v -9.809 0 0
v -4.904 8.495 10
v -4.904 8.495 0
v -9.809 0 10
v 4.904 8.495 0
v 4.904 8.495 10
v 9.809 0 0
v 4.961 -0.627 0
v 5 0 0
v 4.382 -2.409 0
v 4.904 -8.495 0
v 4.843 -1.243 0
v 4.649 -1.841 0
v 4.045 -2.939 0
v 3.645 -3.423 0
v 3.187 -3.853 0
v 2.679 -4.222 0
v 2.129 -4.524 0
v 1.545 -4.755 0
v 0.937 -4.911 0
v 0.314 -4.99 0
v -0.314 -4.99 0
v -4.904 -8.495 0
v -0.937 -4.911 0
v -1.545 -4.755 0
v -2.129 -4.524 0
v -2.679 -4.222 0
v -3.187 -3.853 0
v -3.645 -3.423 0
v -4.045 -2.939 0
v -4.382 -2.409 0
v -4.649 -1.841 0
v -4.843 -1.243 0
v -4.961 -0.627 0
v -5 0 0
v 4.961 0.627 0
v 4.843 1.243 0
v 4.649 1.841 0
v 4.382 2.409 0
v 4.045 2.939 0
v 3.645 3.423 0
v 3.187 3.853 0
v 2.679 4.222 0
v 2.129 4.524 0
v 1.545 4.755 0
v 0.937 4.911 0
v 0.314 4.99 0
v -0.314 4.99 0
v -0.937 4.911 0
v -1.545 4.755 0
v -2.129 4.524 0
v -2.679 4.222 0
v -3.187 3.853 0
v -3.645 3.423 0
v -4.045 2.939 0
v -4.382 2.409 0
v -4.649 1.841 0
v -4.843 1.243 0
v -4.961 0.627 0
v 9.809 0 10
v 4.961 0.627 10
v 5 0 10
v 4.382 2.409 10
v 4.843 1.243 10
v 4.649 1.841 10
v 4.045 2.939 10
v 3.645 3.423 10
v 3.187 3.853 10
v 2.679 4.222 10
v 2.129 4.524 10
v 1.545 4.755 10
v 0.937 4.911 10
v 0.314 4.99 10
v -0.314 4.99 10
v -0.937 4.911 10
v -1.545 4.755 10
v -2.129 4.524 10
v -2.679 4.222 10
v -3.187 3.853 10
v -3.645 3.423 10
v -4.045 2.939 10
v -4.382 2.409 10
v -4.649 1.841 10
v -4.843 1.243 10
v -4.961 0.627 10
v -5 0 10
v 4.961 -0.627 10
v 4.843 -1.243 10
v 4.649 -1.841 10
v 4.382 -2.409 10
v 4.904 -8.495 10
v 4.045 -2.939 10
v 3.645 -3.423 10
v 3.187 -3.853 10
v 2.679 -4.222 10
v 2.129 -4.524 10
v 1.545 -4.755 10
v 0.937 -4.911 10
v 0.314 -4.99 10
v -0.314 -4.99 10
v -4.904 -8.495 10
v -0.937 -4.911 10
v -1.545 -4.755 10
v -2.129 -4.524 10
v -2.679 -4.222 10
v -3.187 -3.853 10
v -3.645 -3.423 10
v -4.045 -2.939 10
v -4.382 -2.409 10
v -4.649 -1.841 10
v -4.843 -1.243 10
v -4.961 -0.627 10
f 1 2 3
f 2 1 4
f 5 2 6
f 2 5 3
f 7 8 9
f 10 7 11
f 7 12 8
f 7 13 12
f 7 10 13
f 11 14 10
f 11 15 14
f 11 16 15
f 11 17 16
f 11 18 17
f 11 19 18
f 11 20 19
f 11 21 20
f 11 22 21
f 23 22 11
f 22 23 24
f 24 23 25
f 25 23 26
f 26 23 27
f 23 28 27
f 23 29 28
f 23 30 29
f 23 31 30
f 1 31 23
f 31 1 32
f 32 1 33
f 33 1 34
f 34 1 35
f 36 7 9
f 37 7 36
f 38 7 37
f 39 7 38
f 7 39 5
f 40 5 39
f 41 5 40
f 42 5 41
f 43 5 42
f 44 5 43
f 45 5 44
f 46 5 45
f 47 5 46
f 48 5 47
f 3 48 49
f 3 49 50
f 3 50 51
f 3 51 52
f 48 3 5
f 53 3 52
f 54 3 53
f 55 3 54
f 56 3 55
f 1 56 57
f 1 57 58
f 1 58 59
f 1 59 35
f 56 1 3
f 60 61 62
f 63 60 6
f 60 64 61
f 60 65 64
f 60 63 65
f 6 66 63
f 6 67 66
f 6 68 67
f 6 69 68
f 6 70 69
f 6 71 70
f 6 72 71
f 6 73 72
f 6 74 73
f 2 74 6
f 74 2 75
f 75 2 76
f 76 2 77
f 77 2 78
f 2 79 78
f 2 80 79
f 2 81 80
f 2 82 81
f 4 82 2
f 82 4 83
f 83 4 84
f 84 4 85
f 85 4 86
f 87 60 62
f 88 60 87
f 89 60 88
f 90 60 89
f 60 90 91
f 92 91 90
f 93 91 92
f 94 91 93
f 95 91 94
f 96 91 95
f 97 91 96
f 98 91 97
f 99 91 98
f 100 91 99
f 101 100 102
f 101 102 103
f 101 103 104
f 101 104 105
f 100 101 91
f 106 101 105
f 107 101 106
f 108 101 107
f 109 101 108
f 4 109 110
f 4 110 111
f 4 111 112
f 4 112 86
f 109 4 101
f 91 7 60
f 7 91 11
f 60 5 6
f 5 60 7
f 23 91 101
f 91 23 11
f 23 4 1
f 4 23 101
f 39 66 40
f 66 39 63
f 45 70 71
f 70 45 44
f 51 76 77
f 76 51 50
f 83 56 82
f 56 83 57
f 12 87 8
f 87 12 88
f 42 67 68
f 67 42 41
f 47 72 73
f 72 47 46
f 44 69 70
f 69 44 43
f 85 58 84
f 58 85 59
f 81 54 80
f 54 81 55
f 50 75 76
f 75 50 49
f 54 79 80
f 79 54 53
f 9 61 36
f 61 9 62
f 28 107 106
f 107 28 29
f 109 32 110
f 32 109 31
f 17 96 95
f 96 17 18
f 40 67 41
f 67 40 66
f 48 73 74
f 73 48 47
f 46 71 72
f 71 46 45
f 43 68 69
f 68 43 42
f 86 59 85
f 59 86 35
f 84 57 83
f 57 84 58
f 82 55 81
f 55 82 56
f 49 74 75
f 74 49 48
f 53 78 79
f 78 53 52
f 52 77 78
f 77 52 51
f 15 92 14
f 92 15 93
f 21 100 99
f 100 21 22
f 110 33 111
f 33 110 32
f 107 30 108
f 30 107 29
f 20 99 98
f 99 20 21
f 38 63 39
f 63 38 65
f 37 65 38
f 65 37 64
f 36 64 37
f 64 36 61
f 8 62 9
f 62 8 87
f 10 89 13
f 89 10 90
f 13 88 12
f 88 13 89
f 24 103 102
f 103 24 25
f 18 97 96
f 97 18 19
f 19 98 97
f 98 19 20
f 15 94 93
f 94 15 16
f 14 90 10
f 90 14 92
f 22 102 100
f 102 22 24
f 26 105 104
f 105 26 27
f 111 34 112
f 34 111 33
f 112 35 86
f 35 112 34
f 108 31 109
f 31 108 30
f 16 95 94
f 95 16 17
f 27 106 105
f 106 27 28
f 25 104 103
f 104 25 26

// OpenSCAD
$fn = 50;


difference() {
	union() {
		translate(v = [0, 0, 0]) {
			rotate(a = [0, 0, 0]) {
				#translate(v = [0, 0, 0]) {
					rotate(a = [0, 0, 0]) {
						linear_extrude(height = 10) {
							polygon(points = [[9.8090000000, 0.0000000000], [4.9045000000, 8.4948431857], [-4.9045000000, 8.4948431857], [-9.8090000000, 0.0000000000], [-4.9045000000, -8.4948431857], [4.9045000000, -8.4948431857]]);
						}
					}
				}
			}
		}
	}
	union() {
		translate(v = [0, 0, -10]) {
			rotate(a = [0, 0, 0]) {
				cylinder(h = 100, r = 5.0000000000);
			}
		}
	}
}
